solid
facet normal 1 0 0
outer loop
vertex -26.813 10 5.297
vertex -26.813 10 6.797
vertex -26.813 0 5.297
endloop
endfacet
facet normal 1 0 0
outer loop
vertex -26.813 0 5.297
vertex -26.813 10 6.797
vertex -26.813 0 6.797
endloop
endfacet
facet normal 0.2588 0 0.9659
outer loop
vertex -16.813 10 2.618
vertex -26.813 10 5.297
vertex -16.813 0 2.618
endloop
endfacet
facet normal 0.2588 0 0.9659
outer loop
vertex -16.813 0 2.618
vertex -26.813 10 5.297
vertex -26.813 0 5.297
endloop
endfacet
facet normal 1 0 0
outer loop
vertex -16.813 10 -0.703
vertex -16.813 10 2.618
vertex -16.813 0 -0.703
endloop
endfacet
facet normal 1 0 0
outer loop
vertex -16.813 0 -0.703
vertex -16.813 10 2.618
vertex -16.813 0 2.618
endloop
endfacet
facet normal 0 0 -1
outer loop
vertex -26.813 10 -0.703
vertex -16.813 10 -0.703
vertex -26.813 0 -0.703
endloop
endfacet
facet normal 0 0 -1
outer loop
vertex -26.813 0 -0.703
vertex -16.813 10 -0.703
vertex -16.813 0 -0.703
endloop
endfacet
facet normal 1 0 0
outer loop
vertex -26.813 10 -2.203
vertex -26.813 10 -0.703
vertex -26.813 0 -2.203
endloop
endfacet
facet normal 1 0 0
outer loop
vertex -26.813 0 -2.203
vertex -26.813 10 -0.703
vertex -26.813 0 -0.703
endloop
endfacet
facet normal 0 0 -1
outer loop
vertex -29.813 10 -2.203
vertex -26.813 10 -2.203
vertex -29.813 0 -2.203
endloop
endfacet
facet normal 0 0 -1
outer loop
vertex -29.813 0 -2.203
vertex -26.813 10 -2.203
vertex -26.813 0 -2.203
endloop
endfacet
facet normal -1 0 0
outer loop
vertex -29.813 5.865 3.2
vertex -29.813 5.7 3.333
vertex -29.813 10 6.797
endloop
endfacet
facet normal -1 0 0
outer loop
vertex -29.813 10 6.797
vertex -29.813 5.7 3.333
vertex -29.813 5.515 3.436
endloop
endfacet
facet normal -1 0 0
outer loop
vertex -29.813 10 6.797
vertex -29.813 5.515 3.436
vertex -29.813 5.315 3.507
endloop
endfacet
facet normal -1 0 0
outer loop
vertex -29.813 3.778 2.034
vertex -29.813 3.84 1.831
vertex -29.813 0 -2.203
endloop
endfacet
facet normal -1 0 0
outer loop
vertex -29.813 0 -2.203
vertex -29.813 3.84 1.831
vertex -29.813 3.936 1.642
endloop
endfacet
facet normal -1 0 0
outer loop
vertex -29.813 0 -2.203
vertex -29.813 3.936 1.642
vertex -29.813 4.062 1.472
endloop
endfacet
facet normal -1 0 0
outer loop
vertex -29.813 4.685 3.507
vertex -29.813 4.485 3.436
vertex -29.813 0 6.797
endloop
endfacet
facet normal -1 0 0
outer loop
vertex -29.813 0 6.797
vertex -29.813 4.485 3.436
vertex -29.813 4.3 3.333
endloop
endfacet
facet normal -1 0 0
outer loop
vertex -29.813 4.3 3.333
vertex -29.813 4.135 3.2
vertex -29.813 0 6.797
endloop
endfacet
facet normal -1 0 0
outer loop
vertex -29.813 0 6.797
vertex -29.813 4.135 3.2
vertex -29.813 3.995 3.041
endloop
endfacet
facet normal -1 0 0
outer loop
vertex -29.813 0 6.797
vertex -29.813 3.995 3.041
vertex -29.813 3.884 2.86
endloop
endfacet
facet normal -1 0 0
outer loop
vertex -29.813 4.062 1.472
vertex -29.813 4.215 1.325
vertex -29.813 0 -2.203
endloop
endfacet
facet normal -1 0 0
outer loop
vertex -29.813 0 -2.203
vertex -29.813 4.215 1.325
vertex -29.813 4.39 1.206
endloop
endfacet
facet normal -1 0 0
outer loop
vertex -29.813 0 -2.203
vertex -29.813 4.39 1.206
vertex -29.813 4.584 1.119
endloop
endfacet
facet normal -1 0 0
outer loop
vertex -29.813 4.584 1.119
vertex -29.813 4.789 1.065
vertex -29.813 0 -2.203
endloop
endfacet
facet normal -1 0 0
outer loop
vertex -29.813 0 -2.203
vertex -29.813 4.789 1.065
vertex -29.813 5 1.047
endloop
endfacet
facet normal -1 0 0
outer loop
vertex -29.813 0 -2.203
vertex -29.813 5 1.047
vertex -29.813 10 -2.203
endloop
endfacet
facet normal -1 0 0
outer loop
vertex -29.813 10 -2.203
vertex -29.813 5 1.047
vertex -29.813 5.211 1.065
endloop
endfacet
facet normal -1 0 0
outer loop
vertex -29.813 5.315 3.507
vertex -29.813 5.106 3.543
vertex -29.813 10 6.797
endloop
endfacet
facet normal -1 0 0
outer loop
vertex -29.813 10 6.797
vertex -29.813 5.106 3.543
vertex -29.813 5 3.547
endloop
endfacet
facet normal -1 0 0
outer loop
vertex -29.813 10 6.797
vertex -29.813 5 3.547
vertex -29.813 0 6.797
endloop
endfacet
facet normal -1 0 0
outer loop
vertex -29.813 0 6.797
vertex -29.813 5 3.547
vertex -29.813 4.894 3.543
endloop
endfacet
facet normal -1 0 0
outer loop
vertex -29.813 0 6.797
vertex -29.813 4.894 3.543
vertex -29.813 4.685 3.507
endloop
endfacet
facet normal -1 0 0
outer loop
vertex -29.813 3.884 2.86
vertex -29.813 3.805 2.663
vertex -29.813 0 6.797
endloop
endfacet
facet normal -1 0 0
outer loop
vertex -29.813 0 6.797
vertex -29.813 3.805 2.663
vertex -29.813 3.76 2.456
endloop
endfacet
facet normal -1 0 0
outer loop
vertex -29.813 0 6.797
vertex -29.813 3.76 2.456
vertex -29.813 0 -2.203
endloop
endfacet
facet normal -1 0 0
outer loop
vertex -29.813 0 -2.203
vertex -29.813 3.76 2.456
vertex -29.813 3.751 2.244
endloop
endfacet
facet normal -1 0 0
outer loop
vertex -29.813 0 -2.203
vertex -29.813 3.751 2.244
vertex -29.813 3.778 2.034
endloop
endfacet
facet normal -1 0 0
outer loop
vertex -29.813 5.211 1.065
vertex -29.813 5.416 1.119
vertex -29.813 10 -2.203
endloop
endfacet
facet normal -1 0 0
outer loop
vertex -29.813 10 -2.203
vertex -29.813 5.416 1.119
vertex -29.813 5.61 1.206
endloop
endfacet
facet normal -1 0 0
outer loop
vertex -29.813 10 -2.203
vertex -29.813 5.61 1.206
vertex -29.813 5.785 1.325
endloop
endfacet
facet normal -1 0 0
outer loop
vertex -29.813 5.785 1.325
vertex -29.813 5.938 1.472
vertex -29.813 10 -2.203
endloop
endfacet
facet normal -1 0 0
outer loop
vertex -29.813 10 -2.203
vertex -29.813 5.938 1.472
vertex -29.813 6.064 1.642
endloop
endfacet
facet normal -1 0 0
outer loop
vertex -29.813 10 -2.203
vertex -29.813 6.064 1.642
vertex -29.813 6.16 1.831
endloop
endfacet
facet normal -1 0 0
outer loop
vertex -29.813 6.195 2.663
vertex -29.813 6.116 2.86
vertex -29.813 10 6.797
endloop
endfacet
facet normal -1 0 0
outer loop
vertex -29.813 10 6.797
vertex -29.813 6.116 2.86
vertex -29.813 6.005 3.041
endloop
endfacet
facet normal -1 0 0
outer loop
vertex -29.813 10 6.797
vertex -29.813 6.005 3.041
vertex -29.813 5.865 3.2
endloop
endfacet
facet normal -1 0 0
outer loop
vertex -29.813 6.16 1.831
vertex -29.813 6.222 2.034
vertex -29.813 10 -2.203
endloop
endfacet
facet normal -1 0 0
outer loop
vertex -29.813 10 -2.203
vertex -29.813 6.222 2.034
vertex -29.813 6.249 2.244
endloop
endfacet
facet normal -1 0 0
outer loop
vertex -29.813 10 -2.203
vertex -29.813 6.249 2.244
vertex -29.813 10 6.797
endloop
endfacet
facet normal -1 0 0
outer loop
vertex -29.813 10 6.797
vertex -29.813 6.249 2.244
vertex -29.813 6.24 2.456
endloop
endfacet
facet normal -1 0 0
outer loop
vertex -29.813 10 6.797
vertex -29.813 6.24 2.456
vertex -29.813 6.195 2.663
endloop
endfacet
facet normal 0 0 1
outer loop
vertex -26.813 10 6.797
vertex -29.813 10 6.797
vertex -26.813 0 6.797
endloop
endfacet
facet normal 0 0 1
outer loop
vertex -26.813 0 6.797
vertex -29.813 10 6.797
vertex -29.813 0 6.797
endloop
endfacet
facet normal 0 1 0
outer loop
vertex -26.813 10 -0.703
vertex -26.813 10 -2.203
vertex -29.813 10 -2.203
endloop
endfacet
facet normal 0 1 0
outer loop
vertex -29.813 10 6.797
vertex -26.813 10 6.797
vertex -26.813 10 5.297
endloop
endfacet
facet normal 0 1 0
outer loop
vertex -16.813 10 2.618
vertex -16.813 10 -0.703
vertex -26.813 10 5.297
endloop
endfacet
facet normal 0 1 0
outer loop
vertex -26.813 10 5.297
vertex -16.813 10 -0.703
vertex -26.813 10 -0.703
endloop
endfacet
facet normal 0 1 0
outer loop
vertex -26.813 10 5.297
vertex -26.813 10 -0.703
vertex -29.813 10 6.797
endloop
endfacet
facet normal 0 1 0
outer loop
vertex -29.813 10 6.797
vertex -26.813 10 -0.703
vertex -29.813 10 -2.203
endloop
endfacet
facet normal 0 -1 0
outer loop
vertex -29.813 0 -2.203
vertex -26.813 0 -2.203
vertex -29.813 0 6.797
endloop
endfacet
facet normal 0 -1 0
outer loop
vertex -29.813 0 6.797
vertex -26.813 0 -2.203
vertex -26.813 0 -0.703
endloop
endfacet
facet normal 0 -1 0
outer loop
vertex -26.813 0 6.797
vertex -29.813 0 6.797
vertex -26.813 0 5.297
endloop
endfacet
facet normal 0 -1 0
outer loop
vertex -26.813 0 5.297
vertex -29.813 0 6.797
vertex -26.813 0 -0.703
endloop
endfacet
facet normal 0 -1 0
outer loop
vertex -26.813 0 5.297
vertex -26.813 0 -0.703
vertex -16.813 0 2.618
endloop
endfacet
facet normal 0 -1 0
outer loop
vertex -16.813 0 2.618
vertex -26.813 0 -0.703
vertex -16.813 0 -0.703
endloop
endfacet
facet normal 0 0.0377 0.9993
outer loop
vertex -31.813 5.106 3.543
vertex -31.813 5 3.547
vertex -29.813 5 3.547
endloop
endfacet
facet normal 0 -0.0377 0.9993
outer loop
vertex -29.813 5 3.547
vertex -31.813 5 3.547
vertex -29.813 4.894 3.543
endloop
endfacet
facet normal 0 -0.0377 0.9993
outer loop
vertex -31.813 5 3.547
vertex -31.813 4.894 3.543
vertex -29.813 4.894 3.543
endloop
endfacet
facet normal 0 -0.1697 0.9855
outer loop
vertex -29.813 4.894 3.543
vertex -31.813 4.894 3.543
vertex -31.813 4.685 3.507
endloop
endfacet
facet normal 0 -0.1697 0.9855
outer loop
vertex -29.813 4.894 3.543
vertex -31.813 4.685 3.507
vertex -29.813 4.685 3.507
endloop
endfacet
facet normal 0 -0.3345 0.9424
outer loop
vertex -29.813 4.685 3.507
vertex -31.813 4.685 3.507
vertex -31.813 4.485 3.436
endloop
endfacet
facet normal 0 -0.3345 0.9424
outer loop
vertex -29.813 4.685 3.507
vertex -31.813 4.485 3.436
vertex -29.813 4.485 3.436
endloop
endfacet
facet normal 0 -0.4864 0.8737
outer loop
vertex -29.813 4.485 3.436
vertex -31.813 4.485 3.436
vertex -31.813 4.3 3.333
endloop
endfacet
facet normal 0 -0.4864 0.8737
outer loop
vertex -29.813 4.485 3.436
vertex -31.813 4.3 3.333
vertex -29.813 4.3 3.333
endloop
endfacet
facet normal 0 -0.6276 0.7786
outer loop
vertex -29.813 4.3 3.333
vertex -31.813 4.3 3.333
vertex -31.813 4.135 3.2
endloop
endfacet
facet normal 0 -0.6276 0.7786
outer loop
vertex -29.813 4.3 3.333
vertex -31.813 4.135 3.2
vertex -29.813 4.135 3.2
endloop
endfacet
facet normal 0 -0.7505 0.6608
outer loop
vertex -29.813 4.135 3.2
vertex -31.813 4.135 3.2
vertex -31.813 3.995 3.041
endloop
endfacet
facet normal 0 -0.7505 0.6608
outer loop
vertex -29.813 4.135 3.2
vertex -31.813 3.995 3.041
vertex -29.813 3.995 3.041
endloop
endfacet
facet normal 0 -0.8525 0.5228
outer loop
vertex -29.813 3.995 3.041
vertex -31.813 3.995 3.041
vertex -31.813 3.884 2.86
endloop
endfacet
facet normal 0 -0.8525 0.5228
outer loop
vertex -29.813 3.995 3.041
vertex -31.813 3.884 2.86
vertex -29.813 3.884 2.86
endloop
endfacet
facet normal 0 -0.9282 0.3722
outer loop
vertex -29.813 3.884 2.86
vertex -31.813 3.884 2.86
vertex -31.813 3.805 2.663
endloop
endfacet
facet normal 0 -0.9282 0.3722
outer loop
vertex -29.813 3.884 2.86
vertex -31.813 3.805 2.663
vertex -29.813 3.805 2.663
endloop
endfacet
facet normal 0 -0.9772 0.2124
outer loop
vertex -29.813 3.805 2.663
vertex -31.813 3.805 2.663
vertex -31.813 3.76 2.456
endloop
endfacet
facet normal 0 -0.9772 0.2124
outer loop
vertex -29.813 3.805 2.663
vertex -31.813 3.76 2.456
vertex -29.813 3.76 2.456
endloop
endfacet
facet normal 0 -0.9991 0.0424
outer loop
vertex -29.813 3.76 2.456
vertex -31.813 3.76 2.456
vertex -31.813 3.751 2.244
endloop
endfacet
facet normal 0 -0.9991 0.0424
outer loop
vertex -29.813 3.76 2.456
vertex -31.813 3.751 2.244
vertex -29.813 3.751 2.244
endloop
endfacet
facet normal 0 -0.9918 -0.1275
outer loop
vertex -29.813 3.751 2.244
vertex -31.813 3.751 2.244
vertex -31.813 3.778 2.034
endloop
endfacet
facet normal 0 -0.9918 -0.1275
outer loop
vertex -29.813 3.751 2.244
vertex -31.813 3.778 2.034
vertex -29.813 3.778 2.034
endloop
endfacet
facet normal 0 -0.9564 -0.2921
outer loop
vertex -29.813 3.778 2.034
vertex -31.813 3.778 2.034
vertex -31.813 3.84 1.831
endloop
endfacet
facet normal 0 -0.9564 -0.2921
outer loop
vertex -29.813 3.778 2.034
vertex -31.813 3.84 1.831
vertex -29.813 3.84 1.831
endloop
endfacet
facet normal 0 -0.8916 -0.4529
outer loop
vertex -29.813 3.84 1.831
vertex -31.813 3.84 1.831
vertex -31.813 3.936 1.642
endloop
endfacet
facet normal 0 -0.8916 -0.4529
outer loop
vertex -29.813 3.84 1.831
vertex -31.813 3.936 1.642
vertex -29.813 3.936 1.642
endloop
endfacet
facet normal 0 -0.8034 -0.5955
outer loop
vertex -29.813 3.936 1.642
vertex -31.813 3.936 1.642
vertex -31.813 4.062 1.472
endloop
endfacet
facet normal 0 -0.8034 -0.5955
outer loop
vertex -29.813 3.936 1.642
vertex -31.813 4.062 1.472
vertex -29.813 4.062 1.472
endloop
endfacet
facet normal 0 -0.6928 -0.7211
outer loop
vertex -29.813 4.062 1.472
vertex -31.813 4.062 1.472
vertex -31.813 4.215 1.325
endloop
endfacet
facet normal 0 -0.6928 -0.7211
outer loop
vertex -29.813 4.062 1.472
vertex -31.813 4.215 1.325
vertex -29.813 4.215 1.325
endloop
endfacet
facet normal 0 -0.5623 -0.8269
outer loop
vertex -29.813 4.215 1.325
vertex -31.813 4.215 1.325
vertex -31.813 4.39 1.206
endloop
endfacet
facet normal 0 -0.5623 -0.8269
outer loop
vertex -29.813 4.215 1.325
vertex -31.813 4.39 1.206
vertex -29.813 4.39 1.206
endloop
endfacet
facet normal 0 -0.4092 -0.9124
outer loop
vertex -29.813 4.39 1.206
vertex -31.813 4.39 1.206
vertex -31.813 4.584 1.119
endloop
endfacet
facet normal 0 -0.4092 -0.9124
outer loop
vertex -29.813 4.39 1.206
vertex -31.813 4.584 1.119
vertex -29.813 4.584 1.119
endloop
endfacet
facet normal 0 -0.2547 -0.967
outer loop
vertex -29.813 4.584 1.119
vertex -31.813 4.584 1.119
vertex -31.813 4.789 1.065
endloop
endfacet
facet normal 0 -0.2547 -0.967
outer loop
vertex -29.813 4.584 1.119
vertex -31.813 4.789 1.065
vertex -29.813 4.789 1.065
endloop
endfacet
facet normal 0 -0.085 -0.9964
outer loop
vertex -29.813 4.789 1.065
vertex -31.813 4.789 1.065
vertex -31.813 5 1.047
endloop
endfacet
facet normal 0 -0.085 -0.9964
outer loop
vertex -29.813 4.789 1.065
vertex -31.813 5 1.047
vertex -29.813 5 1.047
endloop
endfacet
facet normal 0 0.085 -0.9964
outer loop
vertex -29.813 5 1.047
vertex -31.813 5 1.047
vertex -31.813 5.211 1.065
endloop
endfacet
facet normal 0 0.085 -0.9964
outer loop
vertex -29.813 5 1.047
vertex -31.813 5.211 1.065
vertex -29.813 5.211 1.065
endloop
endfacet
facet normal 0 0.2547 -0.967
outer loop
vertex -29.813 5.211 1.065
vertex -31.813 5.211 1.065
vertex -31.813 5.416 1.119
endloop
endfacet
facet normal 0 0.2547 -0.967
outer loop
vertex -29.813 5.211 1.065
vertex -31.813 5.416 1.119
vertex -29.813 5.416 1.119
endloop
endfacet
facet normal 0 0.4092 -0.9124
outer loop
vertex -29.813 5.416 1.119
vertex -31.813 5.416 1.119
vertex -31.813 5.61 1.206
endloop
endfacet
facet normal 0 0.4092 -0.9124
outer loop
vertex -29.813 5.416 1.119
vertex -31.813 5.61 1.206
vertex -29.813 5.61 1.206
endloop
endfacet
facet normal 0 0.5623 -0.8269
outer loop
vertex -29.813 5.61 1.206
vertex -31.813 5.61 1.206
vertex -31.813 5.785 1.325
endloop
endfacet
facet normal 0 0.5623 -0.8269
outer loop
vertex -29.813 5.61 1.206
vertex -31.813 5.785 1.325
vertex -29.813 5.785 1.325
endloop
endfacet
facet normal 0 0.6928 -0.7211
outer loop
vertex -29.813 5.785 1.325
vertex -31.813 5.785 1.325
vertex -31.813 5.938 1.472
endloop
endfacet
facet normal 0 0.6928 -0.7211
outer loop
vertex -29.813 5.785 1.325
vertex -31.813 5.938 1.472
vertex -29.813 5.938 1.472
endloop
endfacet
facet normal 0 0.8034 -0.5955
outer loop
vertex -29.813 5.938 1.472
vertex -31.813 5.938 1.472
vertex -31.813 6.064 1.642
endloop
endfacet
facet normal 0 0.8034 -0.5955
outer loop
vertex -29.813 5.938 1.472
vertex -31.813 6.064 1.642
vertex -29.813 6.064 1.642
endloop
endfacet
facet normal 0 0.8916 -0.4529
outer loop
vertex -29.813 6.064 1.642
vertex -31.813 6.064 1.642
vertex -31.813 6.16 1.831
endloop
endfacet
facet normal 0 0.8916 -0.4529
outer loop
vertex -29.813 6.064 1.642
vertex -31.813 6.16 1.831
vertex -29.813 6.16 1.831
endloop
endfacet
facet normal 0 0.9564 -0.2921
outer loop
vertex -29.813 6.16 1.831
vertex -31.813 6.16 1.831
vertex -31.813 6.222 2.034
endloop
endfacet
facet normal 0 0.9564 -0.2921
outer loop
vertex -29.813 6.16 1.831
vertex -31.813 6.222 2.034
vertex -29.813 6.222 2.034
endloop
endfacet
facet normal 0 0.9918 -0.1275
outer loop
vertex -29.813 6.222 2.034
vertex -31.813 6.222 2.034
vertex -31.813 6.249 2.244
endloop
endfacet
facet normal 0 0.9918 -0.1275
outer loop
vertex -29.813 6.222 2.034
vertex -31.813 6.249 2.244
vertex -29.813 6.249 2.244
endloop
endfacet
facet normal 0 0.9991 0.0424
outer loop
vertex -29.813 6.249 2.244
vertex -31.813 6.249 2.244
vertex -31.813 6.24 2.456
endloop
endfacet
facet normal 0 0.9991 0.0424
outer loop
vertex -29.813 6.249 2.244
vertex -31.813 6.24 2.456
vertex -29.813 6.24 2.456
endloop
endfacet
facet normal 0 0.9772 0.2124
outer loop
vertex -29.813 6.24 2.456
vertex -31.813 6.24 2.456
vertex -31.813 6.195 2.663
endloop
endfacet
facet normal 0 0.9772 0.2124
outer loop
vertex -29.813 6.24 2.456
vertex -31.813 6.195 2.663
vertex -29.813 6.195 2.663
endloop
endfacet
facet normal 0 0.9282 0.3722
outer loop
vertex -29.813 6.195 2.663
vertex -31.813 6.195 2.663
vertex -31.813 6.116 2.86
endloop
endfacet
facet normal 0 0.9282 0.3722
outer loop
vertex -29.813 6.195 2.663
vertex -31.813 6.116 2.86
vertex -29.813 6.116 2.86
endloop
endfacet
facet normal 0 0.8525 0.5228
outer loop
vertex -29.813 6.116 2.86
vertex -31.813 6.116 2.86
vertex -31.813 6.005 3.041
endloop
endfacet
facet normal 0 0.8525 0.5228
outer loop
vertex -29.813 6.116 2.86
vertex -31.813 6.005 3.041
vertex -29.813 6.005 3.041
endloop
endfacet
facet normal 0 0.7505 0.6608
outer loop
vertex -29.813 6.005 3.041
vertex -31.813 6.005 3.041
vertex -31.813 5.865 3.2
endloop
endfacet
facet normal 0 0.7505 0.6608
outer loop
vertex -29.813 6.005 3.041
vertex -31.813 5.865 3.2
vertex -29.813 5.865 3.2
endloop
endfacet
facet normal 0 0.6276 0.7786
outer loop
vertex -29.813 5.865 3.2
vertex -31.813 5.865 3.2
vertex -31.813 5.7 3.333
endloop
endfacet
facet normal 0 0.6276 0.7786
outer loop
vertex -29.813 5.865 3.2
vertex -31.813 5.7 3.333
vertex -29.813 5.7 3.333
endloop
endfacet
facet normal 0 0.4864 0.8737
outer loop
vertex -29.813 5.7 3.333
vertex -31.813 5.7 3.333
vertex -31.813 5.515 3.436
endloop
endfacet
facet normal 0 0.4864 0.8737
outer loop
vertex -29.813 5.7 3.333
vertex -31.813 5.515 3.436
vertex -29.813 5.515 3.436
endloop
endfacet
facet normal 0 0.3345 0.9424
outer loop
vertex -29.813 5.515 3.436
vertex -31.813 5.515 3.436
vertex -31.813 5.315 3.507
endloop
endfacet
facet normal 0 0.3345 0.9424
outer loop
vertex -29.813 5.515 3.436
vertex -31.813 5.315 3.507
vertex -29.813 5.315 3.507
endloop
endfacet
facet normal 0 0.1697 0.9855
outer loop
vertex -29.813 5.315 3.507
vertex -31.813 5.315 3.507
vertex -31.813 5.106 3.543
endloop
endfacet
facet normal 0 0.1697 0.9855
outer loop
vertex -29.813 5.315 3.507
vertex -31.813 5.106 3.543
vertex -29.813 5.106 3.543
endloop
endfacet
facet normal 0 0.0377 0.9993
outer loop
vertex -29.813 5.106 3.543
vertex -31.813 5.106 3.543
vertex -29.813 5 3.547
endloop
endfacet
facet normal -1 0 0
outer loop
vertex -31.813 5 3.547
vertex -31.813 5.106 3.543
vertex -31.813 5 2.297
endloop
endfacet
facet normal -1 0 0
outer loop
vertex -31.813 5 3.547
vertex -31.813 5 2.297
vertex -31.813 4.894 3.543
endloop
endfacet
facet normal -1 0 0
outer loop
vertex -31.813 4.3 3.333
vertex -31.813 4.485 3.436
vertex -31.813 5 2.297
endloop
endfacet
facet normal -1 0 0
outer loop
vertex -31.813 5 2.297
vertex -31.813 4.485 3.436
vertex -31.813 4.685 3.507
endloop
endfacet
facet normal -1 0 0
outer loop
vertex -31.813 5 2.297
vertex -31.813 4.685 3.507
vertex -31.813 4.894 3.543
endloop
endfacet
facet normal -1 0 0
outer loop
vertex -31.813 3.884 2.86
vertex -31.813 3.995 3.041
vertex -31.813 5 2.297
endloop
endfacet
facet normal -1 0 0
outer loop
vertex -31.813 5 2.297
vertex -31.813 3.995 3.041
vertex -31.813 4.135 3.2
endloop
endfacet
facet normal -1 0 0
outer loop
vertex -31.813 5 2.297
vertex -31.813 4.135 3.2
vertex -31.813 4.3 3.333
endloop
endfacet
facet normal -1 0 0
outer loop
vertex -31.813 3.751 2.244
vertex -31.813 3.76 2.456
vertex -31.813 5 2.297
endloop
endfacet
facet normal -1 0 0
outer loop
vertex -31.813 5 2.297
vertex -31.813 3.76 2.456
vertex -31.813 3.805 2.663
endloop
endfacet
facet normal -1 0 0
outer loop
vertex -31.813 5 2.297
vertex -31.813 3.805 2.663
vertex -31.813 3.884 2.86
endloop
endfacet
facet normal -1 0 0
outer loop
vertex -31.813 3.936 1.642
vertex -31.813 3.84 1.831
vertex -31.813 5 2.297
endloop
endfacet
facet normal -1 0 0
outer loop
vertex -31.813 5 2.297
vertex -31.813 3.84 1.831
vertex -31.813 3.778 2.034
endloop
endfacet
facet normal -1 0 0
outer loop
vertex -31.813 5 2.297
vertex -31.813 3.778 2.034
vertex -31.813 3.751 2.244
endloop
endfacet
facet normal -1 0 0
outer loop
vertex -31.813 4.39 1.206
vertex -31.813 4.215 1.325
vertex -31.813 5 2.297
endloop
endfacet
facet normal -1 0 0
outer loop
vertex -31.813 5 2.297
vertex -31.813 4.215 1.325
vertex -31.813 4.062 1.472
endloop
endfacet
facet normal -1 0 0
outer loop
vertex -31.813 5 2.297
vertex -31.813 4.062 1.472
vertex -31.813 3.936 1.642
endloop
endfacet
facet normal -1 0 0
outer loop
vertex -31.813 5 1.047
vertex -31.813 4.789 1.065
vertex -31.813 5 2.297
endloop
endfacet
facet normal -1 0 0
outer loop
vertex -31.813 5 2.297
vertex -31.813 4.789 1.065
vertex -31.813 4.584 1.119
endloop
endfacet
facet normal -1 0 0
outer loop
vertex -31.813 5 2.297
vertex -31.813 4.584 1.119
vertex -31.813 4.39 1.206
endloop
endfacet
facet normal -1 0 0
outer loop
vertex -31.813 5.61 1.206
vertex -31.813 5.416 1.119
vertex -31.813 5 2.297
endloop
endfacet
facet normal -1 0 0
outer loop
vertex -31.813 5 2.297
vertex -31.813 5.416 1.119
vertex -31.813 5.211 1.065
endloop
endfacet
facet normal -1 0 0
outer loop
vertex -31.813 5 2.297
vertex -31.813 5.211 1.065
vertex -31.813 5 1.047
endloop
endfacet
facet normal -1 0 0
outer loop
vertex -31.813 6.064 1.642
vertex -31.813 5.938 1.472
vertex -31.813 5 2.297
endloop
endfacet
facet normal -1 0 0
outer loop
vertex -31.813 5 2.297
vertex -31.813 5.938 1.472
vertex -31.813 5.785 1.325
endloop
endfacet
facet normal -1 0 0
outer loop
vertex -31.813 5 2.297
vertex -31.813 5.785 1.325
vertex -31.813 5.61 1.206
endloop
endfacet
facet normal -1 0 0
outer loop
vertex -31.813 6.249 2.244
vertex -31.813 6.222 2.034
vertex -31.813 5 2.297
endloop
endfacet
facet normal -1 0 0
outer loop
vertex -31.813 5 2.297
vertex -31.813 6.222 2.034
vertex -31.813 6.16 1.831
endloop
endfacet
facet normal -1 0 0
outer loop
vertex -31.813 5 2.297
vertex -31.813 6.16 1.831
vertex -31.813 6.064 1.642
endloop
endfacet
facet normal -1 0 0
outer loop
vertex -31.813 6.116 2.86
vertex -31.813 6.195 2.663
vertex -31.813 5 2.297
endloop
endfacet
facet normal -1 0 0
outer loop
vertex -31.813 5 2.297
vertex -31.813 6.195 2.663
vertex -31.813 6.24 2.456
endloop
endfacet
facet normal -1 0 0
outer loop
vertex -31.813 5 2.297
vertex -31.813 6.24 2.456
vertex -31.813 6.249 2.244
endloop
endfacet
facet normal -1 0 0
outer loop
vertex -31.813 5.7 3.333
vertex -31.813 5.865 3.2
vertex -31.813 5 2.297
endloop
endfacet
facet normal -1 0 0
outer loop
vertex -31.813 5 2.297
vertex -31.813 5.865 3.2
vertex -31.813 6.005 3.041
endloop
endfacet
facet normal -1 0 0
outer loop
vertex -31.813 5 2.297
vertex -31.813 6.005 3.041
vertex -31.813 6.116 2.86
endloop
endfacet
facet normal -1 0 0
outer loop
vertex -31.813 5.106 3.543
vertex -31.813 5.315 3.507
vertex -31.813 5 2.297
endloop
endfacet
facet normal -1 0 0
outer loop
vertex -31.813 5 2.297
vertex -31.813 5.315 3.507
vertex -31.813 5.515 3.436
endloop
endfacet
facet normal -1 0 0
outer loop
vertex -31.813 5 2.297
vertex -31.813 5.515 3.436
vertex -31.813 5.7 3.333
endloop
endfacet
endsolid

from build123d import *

# Parameters (mm, degrees)
AUFSATZ_LINEAR_AUSTRAGEN1_DEPTH = 10
SKIZZE2_R                       = 1.25
AUFSATZ_LINEAR_AUSTRAGEN2_DEPTH = 2


with BuildPart() as part:
    # Skizze1 → Aufsatz-Linear austragen1 (new body)
    with BuildSketch(Plane(origin=(0, 0, 0), x_dir=(1, 0, 0), z_dir=(0, 1, 0))):
        Polygon((-16.813013293, -2.617875107), (-26.813013293, -5.297367031), (-26.813013293, -6.797367031), (-29.813013293, -6.797367031), (-29.813013293, 2.202632969), (-26.813013293, 2.202632969), (-26.813013293, 0.702632969), (-16.813013293, 0.702632969), align=None)
    extrude(amount=AUFSATZ_LINEAR_AUSTRAGEN1_DEPTH)

    # Skizze2 → Aufsatz-Linear austragen2 (add)
    with BuildSketch(Plane.ZY.offset(29.813013293)):
        with Locations((2.297367031, 5)):
            Circle(SKIZZE2_R)
    extrude(amount=AUFSATZ_LINEAR_AUSTRAGEN2_DEPTH)


solid = part.part
